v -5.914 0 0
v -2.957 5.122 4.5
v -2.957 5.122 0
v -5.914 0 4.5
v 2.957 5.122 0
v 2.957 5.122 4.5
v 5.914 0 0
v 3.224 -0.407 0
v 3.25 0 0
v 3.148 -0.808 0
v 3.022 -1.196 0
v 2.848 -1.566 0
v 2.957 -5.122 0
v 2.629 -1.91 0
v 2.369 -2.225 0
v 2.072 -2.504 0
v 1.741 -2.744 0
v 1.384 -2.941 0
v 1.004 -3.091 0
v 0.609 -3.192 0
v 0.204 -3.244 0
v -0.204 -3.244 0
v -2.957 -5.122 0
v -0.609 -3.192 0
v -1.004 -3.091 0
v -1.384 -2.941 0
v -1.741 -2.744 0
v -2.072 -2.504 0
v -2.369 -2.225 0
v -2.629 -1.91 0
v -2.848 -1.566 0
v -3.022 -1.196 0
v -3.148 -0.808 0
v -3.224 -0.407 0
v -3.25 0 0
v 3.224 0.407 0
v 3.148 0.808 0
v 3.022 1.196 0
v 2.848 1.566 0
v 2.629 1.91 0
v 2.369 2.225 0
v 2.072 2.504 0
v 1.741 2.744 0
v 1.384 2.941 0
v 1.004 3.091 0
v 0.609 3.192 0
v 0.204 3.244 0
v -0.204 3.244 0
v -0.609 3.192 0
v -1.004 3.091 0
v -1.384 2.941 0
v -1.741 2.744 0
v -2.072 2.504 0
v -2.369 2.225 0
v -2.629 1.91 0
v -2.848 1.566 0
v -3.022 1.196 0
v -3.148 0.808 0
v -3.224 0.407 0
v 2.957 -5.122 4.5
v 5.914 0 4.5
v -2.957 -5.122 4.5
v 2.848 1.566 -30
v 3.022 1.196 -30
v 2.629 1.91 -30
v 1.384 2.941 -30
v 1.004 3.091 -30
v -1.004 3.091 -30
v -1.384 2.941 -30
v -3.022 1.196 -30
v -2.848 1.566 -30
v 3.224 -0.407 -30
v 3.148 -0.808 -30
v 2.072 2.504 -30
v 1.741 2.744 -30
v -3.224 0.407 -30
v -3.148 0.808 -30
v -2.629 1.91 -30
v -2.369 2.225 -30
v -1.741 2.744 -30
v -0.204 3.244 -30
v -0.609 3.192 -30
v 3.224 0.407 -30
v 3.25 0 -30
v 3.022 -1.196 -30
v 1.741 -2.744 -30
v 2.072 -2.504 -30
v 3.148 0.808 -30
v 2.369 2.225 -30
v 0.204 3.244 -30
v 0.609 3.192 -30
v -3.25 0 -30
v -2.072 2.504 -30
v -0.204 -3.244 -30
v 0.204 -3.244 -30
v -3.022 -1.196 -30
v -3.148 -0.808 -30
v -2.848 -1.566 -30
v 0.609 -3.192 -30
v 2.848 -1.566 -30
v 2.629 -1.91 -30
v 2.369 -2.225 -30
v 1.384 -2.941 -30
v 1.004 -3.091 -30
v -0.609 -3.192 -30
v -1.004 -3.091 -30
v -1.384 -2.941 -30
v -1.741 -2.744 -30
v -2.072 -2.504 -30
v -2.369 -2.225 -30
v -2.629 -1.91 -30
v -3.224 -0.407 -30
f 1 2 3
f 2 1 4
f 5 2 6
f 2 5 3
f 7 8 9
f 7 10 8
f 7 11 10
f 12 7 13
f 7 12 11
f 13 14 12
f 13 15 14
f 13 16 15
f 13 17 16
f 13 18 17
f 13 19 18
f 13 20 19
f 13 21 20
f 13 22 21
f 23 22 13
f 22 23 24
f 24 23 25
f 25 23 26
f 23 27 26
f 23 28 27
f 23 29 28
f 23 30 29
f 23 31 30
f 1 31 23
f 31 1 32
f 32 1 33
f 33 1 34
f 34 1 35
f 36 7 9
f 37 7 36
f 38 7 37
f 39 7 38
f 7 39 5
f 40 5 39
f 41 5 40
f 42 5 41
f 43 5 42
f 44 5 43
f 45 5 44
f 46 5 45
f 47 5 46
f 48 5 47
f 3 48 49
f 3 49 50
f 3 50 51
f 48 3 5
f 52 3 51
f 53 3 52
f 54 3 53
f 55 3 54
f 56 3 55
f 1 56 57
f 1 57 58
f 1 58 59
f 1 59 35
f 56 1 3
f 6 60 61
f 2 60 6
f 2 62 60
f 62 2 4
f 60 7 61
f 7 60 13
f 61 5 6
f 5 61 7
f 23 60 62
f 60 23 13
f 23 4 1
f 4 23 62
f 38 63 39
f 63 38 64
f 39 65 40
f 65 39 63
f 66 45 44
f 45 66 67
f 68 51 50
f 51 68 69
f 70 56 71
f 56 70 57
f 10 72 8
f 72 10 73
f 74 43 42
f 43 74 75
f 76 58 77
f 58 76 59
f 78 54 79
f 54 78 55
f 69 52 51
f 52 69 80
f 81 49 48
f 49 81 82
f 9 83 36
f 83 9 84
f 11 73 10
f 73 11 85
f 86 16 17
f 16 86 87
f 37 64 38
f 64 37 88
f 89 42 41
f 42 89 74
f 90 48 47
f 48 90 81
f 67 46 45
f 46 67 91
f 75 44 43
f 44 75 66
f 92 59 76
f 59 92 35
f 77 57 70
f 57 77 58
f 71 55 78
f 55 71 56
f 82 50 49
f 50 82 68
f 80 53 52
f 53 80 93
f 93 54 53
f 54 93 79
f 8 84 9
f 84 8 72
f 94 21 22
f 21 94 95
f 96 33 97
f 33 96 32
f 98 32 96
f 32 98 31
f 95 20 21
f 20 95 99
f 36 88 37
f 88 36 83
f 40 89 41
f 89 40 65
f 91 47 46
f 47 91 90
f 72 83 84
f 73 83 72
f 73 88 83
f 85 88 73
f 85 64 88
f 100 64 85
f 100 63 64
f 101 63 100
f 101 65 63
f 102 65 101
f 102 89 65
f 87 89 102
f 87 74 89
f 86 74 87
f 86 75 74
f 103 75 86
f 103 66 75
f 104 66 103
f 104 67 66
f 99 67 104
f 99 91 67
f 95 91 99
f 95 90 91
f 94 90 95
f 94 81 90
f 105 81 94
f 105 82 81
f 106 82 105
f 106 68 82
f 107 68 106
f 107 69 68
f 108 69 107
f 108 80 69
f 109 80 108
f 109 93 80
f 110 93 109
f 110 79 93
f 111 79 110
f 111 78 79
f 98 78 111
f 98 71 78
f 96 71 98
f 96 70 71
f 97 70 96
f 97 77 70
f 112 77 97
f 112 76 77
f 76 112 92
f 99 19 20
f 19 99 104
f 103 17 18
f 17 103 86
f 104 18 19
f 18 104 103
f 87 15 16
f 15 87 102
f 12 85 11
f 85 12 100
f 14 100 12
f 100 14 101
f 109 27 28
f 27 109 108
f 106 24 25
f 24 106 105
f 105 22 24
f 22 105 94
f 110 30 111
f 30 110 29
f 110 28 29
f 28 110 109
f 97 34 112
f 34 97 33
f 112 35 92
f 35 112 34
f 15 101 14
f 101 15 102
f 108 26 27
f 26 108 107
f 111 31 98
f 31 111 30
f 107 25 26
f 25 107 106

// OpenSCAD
$fn = 50;


difference() {
	union() {
		translate(v = [0, 0, 0]) {
			rotate(a = [0, 0, 0]) {
				translate(v = [0, 0, 0]) {
					rotate(a = [0, 0, 0]) {
						linear_extrude(height = 4.5000000000) {
							polygon(points = [[5.9142500000, 0.0000000000], [2.9571250000, 5.1218907443], [-2.9571250000, 5.1218907443], [-5.9142500000, 0.0000000000], [-2.9571250000, -5.1218907443], [2.9571250000, -5.1218907443]]);
						}
					}
				}
			}
		}
		translate(v = [0, 0, -30]) {
			rotate(a = [0, 0, 0]) {
				cylinder(h = 30, r = 3.2500000000);
			}
		}
	}
	union();
}
